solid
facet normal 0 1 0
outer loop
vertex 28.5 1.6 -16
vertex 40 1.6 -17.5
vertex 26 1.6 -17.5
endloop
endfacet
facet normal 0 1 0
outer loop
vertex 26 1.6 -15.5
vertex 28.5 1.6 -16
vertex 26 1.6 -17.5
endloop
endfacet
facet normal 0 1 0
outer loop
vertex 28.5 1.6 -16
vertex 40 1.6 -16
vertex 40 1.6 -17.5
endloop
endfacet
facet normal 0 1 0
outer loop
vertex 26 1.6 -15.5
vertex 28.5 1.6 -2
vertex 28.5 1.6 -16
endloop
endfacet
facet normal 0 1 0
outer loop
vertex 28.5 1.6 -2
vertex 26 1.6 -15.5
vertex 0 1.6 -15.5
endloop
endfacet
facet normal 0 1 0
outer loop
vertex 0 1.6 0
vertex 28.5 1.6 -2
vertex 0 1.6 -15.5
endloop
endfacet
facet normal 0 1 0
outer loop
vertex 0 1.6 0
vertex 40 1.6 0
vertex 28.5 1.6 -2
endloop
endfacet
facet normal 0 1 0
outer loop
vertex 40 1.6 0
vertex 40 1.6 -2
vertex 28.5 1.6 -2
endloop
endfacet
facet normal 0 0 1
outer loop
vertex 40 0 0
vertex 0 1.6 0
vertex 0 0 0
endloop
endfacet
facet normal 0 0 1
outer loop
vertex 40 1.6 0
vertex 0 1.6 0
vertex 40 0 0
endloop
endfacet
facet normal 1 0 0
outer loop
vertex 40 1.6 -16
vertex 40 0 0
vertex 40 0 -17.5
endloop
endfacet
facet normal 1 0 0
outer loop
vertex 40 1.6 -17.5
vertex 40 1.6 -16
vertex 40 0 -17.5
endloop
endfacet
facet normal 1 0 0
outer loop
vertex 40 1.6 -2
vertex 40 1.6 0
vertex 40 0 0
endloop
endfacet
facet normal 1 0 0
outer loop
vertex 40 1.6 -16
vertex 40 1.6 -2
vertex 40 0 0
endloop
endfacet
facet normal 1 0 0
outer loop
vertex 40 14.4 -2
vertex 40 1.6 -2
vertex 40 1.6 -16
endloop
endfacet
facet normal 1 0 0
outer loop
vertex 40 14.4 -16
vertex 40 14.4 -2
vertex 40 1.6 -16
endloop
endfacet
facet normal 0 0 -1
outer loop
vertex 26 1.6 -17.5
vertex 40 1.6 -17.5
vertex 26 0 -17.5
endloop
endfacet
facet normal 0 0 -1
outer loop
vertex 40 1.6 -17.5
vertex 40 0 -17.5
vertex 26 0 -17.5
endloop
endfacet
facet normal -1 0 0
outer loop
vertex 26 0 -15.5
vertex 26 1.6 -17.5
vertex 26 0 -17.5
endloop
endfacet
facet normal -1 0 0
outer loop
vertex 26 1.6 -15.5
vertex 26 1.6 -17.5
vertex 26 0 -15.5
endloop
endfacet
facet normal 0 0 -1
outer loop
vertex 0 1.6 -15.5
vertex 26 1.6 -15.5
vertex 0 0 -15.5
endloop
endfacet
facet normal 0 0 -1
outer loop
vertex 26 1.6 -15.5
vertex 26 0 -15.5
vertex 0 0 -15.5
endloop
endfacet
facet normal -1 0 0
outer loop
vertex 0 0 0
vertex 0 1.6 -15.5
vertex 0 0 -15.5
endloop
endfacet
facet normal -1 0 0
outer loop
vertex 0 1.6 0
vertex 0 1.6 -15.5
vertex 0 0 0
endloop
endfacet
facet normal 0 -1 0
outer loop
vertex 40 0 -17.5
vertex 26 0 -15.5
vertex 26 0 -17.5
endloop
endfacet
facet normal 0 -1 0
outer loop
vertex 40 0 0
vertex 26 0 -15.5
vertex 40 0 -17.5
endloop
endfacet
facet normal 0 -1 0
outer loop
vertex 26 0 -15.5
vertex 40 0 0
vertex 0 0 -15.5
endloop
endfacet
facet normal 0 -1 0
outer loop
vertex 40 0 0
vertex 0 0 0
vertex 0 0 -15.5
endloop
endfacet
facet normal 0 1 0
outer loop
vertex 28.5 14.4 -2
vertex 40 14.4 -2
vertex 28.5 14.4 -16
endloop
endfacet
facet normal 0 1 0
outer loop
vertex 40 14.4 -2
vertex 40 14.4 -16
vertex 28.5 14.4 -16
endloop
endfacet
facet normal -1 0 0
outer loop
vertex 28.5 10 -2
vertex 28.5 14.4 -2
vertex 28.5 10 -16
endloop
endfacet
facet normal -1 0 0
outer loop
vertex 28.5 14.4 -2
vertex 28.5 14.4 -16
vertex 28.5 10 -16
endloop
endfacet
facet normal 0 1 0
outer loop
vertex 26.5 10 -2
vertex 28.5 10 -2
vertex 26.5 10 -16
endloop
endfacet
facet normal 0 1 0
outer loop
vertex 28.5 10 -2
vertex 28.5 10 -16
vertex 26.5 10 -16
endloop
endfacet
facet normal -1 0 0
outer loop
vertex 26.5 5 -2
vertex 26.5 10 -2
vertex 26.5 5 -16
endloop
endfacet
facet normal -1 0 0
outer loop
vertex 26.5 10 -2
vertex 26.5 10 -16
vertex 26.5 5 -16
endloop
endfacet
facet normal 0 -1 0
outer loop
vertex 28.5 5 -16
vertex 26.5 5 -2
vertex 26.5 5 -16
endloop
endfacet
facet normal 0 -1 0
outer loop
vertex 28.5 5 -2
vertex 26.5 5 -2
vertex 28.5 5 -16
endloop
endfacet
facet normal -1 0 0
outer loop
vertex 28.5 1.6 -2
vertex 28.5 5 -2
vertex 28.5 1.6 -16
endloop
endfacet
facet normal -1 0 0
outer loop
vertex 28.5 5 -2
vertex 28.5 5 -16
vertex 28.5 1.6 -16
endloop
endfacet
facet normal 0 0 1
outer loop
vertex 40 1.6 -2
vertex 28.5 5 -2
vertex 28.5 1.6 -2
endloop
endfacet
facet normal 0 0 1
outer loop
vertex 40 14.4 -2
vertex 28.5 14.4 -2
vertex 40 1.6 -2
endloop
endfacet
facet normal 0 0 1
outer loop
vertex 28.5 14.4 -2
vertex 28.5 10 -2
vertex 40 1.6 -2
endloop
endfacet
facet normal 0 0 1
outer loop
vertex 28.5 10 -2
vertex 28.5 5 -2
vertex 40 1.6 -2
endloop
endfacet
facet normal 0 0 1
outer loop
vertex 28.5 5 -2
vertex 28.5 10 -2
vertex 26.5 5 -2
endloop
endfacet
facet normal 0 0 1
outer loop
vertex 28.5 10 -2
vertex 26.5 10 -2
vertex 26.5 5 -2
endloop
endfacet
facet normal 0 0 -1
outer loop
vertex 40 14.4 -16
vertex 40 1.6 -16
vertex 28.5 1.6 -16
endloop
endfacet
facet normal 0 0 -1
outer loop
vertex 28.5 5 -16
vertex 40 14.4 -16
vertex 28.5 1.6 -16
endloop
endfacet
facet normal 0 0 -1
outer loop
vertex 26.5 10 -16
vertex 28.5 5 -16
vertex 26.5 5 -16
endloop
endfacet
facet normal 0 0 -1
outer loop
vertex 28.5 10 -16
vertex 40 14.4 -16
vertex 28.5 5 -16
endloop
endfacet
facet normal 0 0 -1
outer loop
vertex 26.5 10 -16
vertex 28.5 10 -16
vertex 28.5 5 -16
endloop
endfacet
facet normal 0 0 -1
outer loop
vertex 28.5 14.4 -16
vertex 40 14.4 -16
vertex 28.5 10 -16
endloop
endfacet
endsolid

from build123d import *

# Parameters (mm, degrees)
BOSS_EXTRUDE1_DEPTH = 1.6
BOSS_EXTRUDE2_DEPTH = 14


with BuildPart() as part:
    # Sketch1 → Boss-Extrude1 (new body)
    with BuildSketch(Plane(origin=(0, 0, 0), x_dir=(1, 0, 0), z_dir=(0, 1, 0))):
        Polygon((0, 0), (0, 15.5), (26, 15.5), (26, 17.5), (40, 17.5), (40, 0), align=None)
    extrude(amount=BOSS_EXTRUDE1_DEPTH)

    # Sketch2 → Boss-Extrude2 (add)
    with BuildSketch(Plane(origin=(0, 0, -16), x_dir=(-1, 0, 0), z_dir=(0, 0, -1))):
        Polygon((-40, 1.6), (-28.5, 1.6), (-28.5, 5), (-26.5, 5), (-26.5, 10), (-28.5, 10), (-28.5, 14.4), (-40, 14.4), align=None)
    extrude(amount=-BOSS_EXTRUDE2_DEPTH)


solid = part.part
